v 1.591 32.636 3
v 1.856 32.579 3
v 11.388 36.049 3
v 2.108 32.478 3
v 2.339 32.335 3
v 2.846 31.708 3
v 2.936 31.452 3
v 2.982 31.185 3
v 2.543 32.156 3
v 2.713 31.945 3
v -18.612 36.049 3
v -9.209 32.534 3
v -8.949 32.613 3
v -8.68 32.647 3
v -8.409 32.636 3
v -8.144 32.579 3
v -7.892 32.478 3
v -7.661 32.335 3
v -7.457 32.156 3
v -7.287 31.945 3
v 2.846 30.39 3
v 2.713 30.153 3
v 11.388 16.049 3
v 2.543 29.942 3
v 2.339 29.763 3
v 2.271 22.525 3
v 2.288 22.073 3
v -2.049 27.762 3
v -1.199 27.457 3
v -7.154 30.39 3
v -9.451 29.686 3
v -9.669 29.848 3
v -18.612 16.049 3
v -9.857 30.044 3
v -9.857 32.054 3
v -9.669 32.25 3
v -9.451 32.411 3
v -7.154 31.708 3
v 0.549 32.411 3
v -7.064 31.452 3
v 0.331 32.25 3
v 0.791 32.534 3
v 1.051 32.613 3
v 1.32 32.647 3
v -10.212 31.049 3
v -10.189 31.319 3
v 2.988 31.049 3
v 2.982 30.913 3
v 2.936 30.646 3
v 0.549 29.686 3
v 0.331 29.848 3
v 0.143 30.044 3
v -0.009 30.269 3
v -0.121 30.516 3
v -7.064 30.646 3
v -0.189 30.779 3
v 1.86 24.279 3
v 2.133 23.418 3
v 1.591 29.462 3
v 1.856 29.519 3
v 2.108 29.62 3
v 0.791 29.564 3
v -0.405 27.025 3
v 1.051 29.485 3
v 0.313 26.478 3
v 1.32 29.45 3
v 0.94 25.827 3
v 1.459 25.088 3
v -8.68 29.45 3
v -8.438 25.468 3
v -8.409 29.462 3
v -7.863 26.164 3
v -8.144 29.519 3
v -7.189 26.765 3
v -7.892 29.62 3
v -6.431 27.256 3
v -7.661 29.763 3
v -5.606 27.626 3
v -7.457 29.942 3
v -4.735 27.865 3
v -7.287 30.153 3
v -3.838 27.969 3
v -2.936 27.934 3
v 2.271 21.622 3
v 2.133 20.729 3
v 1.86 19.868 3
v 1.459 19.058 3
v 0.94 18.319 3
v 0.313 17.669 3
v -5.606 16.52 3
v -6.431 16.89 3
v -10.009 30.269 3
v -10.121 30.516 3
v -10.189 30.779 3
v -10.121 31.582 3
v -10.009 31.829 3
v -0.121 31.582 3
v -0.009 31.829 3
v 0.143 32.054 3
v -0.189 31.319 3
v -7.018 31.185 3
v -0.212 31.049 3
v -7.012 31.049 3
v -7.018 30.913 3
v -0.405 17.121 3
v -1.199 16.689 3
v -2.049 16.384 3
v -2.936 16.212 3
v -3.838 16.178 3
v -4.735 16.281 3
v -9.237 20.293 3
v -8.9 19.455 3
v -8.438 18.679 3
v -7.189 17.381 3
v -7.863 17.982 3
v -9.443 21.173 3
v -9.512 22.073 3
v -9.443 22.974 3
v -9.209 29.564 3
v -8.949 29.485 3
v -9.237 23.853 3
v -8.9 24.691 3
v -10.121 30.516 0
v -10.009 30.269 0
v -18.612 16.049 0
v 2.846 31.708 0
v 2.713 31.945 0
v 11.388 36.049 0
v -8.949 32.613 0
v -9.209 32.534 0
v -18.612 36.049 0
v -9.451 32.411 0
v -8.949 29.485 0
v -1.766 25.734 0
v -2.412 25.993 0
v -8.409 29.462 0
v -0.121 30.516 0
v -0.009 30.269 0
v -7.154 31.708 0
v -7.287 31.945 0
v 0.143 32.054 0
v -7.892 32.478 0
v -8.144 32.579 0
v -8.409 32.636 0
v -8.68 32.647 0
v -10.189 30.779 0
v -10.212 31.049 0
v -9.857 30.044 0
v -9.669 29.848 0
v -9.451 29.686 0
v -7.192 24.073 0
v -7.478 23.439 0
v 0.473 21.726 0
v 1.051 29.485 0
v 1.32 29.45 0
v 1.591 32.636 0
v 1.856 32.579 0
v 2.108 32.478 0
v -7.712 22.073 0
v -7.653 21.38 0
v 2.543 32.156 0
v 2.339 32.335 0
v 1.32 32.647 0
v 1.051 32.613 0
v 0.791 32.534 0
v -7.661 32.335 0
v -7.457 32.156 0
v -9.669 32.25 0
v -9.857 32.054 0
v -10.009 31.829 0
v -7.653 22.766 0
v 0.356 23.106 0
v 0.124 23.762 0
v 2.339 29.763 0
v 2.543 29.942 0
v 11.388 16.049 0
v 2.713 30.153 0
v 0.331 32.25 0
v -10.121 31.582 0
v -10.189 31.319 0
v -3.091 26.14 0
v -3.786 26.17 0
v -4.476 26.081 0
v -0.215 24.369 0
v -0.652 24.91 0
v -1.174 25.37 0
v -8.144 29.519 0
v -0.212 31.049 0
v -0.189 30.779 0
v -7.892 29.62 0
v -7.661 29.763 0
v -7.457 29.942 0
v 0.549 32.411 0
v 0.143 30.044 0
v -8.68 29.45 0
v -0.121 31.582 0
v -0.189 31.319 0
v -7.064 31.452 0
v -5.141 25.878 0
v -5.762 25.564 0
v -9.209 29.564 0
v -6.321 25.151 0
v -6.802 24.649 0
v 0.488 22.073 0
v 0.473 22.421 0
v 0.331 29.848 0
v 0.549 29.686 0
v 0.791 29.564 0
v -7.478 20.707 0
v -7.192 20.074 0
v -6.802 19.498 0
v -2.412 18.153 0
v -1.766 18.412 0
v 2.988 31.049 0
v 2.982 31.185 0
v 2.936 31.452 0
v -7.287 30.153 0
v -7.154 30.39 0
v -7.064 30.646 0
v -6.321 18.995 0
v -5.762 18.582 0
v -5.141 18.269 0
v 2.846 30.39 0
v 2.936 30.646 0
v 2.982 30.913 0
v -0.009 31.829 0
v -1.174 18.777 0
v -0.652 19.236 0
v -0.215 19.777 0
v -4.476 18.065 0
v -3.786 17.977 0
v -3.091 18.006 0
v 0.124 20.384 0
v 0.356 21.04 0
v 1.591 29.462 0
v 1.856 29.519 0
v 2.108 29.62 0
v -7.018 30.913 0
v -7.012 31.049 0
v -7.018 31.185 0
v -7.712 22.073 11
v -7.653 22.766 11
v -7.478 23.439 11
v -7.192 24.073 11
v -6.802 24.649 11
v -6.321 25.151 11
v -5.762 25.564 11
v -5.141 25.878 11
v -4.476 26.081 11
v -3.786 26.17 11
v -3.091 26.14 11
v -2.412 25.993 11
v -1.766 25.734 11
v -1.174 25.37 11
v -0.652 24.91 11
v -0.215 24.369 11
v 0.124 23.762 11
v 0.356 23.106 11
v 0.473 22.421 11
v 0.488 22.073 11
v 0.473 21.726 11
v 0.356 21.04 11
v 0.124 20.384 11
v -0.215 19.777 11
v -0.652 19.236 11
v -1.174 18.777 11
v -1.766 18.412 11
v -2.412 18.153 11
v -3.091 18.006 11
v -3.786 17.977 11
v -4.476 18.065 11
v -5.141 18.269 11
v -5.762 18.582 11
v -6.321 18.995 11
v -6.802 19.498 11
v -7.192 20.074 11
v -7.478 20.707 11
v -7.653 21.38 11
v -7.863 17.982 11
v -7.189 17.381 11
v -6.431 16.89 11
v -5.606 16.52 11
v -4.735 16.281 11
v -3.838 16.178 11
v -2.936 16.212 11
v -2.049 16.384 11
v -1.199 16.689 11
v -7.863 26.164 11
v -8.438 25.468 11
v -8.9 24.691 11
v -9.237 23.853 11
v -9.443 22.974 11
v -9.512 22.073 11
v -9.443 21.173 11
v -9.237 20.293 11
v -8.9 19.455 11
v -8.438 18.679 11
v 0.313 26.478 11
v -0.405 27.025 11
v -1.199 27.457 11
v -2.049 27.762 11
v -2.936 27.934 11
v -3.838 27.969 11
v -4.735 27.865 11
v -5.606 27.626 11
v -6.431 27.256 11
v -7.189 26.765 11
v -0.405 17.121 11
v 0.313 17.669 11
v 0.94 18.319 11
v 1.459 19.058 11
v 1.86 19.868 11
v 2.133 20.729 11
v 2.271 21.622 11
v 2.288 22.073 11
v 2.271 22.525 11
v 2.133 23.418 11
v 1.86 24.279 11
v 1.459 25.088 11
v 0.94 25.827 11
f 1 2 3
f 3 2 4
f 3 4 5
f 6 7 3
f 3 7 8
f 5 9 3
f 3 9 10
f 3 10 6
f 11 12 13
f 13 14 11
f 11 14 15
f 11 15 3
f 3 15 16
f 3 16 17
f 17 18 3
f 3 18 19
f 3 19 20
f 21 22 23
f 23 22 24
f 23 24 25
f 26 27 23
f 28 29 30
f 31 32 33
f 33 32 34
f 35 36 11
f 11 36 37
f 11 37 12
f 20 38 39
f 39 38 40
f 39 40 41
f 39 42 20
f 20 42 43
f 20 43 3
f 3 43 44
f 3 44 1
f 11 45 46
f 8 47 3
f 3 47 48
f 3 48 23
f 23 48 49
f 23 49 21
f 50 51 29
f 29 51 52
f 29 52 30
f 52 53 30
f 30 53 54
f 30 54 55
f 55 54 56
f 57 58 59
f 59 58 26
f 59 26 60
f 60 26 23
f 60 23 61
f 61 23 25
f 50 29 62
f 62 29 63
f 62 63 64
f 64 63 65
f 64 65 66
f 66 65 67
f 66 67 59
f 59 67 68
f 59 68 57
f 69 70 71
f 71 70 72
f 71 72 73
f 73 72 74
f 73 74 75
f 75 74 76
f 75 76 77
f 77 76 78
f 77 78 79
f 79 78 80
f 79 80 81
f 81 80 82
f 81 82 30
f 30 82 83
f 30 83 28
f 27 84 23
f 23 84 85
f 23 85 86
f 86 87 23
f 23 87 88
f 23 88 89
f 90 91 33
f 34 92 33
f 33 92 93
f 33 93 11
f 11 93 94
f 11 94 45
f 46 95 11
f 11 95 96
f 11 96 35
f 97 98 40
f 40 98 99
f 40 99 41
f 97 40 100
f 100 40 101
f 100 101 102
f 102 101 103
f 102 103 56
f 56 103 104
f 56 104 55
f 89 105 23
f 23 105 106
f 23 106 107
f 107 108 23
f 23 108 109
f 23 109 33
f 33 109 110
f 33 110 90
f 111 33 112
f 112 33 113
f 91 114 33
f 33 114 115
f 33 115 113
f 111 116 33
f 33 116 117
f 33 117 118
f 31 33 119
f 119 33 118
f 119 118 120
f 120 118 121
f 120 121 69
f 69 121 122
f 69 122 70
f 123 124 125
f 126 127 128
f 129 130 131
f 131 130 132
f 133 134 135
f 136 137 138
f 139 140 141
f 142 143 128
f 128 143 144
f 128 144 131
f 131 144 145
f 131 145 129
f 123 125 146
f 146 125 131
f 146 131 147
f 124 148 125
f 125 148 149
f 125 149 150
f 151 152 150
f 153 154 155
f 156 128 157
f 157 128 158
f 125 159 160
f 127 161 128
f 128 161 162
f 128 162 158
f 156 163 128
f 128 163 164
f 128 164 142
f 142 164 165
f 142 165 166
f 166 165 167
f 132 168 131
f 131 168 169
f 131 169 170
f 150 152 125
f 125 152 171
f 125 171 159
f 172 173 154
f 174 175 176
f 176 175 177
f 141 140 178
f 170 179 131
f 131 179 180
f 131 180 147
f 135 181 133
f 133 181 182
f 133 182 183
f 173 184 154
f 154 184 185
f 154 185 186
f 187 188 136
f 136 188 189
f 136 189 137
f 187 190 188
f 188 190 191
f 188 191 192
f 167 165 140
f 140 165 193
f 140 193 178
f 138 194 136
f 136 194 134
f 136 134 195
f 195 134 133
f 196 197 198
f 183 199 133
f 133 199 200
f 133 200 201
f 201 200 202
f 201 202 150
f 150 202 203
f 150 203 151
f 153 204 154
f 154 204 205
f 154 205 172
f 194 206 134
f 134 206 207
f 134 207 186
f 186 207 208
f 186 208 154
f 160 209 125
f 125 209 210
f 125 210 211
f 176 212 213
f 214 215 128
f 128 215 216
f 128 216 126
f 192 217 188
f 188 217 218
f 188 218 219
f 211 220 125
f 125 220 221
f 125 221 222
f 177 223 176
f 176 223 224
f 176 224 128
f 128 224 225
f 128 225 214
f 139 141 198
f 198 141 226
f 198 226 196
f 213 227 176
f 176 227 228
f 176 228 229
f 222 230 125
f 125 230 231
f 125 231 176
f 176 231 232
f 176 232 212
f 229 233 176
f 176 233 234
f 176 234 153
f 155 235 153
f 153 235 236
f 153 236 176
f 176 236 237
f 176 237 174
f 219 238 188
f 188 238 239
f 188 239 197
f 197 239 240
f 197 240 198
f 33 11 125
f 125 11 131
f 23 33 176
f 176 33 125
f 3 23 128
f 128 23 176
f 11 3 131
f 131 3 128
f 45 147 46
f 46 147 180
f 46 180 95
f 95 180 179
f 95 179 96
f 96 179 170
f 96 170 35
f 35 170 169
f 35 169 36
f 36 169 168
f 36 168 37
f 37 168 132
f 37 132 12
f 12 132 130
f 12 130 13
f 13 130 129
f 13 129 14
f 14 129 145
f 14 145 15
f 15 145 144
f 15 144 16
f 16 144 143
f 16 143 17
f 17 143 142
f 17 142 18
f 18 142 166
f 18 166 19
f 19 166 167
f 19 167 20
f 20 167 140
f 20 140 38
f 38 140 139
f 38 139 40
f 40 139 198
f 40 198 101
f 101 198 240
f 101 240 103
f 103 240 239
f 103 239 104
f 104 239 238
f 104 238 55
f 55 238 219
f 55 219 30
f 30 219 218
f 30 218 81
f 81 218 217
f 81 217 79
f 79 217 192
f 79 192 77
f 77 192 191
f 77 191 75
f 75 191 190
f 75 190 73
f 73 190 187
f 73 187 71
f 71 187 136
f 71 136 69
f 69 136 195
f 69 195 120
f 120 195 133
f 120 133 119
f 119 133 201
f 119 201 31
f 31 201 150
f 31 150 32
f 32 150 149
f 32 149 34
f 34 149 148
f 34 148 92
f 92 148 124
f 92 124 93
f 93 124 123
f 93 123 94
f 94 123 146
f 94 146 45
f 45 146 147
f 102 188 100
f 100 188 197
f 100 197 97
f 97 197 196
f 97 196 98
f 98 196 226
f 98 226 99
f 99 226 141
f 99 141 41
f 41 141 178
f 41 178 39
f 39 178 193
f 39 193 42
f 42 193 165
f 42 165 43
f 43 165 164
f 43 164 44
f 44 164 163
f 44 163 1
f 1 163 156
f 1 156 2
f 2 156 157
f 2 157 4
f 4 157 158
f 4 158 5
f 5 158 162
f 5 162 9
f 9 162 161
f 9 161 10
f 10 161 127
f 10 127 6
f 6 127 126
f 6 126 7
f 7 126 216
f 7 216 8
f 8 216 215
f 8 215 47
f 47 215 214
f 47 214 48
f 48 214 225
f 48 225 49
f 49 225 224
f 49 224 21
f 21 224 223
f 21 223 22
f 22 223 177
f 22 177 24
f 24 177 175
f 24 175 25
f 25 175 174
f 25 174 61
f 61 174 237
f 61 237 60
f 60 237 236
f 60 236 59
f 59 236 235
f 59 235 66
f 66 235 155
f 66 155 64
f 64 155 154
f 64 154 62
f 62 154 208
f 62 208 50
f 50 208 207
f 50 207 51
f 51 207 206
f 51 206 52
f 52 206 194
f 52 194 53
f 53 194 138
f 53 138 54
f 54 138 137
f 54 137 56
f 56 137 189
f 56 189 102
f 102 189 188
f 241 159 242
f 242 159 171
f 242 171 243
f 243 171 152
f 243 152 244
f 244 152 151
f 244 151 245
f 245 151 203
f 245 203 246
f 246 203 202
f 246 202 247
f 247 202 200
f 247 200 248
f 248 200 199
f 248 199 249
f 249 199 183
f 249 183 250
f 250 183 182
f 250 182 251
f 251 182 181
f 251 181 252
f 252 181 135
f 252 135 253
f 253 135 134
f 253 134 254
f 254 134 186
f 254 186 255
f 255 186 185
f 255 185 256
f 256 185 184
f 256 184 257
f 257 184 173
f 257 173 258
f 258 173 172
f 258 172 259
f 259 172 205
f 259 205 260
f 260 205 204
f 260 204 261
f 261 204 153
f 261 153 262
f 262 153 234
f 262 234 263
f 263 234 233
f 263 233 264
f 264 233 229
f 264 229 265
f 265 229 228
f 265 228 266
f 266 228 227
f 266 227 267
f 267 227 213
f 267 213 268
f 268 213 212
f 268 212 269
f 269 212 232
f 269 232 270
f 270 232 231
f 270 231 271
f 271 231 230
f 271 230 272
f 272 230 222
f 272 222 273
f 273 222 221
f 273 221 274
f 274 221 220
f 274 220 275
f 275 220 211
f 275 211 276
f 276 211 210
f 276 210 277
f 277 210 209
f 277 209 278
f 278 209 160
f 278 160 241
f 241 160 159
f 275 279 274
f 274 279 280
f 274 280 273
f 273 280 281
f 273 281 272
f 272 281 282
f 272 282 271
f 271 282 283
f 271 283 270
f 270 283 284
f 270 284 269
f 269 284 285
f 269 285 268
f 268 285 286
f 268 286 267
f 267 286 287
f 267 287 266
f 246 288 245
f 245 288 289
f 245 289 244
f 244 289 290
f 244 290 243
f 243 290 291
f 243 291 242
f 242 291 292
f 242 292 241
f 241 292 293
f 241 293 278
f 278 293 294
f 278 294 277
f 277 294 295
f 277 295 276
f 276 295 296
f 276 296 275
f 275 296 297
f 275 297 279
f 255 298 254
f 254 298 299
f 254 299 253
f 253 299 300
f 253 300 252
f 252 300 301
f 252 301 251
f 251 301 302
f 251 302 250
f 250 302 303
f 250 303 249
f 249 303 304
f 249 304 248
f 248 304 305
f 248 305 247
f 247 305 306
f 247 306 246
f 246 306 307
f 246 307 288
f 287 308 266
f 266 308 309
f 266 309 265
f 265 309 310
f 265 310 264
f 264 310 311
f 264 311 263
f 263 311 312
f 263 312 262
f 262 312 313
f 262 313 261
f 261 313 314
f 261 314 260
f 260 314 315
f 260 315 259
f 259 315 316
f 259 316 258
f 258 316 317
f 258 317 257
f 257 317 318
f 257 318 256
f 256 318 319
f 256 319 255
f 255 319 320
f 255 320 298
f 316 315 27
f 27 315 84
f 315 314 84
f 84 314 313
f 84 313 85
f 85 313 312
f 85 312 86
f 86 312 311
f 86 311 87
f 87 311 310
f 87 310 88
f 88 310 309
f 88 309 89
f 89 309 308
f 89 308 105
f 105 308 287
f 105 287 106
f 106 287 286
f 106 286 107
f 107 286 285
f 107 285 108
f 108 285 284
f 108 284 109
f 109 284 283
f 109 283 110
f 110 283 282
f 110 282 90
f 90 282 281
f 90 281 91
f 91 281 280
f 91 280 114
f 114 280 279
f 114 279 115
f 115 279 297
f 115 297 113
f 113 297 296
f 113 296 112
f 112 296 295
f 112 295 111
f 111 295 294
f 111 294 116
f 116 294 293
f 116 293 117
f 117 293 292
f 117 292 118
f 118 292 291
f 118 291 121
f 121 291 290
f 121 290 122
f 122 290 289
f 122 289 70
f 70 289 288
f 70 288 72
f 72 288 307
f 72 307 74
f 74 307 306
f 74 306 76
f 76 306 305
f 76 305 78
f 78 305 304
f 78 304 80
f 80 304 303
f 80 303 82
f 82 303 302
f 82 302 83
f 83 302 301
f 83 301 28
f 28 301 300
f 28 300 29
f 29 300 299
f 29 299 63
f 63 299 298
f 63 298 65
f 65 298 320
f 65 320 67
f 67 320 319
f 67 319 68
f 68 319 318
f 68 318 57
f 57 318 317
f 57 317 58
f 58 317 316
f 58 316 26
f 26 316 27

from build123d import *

# Parameters (mm, degrees)
SKETCH_1_W      = 30
SKETCH_1_H      = 20
SKETCH_1_R      = 1.6
SKETCH_1_R_2    = 4.1
EXTRUDE_1_DEPTH = 3
SKETCH_2_R      = 5.9
SKETCH_2_R_2    = 4.1
EXTRUDE_2_DEPTH = 8


with BuildPart() as part:
    # 草图1 → 凸台-拉伸1 (new body)
    with BuildSketch(Plane.XY):
        with Locations((-3.612174849, 26.048923765)):
            Rectangle(SKETCH_1_W, SKETCH_1_H)
        with Locations((-8.612174849, 31.048923765)):
            Circle(SKETCH_1_R, mode=Mode.SUBTRACT)
        with Locations((1.387825151, 31.048923765)):
            Circle(SKETCH_1_R, mode=Mode.SUBTRACT)
        with Locations((-3.612174849, 22.073206433)):
            Circle(SKETCH_1_R_2, mode=Mode.SUBTRACT)
    extrude(amount=EXTRUDE_1_DEPTH)

    # 草图2 → 凸台-拉伸2 (add)
    with BuildSketch(Plane.XY.offset(3)):
        with Locations((-3.612174849, 22.073206433)):
            Circle(SKETCH_2_R)
        with Locations((-3.612174849, 22.073206433)):
            Circle(SKETCH_2_R_2, mode=Mode.SUBTRACT)
    extrude(amount=EXTRUDE_2_DEPTH)


solid = part.part
